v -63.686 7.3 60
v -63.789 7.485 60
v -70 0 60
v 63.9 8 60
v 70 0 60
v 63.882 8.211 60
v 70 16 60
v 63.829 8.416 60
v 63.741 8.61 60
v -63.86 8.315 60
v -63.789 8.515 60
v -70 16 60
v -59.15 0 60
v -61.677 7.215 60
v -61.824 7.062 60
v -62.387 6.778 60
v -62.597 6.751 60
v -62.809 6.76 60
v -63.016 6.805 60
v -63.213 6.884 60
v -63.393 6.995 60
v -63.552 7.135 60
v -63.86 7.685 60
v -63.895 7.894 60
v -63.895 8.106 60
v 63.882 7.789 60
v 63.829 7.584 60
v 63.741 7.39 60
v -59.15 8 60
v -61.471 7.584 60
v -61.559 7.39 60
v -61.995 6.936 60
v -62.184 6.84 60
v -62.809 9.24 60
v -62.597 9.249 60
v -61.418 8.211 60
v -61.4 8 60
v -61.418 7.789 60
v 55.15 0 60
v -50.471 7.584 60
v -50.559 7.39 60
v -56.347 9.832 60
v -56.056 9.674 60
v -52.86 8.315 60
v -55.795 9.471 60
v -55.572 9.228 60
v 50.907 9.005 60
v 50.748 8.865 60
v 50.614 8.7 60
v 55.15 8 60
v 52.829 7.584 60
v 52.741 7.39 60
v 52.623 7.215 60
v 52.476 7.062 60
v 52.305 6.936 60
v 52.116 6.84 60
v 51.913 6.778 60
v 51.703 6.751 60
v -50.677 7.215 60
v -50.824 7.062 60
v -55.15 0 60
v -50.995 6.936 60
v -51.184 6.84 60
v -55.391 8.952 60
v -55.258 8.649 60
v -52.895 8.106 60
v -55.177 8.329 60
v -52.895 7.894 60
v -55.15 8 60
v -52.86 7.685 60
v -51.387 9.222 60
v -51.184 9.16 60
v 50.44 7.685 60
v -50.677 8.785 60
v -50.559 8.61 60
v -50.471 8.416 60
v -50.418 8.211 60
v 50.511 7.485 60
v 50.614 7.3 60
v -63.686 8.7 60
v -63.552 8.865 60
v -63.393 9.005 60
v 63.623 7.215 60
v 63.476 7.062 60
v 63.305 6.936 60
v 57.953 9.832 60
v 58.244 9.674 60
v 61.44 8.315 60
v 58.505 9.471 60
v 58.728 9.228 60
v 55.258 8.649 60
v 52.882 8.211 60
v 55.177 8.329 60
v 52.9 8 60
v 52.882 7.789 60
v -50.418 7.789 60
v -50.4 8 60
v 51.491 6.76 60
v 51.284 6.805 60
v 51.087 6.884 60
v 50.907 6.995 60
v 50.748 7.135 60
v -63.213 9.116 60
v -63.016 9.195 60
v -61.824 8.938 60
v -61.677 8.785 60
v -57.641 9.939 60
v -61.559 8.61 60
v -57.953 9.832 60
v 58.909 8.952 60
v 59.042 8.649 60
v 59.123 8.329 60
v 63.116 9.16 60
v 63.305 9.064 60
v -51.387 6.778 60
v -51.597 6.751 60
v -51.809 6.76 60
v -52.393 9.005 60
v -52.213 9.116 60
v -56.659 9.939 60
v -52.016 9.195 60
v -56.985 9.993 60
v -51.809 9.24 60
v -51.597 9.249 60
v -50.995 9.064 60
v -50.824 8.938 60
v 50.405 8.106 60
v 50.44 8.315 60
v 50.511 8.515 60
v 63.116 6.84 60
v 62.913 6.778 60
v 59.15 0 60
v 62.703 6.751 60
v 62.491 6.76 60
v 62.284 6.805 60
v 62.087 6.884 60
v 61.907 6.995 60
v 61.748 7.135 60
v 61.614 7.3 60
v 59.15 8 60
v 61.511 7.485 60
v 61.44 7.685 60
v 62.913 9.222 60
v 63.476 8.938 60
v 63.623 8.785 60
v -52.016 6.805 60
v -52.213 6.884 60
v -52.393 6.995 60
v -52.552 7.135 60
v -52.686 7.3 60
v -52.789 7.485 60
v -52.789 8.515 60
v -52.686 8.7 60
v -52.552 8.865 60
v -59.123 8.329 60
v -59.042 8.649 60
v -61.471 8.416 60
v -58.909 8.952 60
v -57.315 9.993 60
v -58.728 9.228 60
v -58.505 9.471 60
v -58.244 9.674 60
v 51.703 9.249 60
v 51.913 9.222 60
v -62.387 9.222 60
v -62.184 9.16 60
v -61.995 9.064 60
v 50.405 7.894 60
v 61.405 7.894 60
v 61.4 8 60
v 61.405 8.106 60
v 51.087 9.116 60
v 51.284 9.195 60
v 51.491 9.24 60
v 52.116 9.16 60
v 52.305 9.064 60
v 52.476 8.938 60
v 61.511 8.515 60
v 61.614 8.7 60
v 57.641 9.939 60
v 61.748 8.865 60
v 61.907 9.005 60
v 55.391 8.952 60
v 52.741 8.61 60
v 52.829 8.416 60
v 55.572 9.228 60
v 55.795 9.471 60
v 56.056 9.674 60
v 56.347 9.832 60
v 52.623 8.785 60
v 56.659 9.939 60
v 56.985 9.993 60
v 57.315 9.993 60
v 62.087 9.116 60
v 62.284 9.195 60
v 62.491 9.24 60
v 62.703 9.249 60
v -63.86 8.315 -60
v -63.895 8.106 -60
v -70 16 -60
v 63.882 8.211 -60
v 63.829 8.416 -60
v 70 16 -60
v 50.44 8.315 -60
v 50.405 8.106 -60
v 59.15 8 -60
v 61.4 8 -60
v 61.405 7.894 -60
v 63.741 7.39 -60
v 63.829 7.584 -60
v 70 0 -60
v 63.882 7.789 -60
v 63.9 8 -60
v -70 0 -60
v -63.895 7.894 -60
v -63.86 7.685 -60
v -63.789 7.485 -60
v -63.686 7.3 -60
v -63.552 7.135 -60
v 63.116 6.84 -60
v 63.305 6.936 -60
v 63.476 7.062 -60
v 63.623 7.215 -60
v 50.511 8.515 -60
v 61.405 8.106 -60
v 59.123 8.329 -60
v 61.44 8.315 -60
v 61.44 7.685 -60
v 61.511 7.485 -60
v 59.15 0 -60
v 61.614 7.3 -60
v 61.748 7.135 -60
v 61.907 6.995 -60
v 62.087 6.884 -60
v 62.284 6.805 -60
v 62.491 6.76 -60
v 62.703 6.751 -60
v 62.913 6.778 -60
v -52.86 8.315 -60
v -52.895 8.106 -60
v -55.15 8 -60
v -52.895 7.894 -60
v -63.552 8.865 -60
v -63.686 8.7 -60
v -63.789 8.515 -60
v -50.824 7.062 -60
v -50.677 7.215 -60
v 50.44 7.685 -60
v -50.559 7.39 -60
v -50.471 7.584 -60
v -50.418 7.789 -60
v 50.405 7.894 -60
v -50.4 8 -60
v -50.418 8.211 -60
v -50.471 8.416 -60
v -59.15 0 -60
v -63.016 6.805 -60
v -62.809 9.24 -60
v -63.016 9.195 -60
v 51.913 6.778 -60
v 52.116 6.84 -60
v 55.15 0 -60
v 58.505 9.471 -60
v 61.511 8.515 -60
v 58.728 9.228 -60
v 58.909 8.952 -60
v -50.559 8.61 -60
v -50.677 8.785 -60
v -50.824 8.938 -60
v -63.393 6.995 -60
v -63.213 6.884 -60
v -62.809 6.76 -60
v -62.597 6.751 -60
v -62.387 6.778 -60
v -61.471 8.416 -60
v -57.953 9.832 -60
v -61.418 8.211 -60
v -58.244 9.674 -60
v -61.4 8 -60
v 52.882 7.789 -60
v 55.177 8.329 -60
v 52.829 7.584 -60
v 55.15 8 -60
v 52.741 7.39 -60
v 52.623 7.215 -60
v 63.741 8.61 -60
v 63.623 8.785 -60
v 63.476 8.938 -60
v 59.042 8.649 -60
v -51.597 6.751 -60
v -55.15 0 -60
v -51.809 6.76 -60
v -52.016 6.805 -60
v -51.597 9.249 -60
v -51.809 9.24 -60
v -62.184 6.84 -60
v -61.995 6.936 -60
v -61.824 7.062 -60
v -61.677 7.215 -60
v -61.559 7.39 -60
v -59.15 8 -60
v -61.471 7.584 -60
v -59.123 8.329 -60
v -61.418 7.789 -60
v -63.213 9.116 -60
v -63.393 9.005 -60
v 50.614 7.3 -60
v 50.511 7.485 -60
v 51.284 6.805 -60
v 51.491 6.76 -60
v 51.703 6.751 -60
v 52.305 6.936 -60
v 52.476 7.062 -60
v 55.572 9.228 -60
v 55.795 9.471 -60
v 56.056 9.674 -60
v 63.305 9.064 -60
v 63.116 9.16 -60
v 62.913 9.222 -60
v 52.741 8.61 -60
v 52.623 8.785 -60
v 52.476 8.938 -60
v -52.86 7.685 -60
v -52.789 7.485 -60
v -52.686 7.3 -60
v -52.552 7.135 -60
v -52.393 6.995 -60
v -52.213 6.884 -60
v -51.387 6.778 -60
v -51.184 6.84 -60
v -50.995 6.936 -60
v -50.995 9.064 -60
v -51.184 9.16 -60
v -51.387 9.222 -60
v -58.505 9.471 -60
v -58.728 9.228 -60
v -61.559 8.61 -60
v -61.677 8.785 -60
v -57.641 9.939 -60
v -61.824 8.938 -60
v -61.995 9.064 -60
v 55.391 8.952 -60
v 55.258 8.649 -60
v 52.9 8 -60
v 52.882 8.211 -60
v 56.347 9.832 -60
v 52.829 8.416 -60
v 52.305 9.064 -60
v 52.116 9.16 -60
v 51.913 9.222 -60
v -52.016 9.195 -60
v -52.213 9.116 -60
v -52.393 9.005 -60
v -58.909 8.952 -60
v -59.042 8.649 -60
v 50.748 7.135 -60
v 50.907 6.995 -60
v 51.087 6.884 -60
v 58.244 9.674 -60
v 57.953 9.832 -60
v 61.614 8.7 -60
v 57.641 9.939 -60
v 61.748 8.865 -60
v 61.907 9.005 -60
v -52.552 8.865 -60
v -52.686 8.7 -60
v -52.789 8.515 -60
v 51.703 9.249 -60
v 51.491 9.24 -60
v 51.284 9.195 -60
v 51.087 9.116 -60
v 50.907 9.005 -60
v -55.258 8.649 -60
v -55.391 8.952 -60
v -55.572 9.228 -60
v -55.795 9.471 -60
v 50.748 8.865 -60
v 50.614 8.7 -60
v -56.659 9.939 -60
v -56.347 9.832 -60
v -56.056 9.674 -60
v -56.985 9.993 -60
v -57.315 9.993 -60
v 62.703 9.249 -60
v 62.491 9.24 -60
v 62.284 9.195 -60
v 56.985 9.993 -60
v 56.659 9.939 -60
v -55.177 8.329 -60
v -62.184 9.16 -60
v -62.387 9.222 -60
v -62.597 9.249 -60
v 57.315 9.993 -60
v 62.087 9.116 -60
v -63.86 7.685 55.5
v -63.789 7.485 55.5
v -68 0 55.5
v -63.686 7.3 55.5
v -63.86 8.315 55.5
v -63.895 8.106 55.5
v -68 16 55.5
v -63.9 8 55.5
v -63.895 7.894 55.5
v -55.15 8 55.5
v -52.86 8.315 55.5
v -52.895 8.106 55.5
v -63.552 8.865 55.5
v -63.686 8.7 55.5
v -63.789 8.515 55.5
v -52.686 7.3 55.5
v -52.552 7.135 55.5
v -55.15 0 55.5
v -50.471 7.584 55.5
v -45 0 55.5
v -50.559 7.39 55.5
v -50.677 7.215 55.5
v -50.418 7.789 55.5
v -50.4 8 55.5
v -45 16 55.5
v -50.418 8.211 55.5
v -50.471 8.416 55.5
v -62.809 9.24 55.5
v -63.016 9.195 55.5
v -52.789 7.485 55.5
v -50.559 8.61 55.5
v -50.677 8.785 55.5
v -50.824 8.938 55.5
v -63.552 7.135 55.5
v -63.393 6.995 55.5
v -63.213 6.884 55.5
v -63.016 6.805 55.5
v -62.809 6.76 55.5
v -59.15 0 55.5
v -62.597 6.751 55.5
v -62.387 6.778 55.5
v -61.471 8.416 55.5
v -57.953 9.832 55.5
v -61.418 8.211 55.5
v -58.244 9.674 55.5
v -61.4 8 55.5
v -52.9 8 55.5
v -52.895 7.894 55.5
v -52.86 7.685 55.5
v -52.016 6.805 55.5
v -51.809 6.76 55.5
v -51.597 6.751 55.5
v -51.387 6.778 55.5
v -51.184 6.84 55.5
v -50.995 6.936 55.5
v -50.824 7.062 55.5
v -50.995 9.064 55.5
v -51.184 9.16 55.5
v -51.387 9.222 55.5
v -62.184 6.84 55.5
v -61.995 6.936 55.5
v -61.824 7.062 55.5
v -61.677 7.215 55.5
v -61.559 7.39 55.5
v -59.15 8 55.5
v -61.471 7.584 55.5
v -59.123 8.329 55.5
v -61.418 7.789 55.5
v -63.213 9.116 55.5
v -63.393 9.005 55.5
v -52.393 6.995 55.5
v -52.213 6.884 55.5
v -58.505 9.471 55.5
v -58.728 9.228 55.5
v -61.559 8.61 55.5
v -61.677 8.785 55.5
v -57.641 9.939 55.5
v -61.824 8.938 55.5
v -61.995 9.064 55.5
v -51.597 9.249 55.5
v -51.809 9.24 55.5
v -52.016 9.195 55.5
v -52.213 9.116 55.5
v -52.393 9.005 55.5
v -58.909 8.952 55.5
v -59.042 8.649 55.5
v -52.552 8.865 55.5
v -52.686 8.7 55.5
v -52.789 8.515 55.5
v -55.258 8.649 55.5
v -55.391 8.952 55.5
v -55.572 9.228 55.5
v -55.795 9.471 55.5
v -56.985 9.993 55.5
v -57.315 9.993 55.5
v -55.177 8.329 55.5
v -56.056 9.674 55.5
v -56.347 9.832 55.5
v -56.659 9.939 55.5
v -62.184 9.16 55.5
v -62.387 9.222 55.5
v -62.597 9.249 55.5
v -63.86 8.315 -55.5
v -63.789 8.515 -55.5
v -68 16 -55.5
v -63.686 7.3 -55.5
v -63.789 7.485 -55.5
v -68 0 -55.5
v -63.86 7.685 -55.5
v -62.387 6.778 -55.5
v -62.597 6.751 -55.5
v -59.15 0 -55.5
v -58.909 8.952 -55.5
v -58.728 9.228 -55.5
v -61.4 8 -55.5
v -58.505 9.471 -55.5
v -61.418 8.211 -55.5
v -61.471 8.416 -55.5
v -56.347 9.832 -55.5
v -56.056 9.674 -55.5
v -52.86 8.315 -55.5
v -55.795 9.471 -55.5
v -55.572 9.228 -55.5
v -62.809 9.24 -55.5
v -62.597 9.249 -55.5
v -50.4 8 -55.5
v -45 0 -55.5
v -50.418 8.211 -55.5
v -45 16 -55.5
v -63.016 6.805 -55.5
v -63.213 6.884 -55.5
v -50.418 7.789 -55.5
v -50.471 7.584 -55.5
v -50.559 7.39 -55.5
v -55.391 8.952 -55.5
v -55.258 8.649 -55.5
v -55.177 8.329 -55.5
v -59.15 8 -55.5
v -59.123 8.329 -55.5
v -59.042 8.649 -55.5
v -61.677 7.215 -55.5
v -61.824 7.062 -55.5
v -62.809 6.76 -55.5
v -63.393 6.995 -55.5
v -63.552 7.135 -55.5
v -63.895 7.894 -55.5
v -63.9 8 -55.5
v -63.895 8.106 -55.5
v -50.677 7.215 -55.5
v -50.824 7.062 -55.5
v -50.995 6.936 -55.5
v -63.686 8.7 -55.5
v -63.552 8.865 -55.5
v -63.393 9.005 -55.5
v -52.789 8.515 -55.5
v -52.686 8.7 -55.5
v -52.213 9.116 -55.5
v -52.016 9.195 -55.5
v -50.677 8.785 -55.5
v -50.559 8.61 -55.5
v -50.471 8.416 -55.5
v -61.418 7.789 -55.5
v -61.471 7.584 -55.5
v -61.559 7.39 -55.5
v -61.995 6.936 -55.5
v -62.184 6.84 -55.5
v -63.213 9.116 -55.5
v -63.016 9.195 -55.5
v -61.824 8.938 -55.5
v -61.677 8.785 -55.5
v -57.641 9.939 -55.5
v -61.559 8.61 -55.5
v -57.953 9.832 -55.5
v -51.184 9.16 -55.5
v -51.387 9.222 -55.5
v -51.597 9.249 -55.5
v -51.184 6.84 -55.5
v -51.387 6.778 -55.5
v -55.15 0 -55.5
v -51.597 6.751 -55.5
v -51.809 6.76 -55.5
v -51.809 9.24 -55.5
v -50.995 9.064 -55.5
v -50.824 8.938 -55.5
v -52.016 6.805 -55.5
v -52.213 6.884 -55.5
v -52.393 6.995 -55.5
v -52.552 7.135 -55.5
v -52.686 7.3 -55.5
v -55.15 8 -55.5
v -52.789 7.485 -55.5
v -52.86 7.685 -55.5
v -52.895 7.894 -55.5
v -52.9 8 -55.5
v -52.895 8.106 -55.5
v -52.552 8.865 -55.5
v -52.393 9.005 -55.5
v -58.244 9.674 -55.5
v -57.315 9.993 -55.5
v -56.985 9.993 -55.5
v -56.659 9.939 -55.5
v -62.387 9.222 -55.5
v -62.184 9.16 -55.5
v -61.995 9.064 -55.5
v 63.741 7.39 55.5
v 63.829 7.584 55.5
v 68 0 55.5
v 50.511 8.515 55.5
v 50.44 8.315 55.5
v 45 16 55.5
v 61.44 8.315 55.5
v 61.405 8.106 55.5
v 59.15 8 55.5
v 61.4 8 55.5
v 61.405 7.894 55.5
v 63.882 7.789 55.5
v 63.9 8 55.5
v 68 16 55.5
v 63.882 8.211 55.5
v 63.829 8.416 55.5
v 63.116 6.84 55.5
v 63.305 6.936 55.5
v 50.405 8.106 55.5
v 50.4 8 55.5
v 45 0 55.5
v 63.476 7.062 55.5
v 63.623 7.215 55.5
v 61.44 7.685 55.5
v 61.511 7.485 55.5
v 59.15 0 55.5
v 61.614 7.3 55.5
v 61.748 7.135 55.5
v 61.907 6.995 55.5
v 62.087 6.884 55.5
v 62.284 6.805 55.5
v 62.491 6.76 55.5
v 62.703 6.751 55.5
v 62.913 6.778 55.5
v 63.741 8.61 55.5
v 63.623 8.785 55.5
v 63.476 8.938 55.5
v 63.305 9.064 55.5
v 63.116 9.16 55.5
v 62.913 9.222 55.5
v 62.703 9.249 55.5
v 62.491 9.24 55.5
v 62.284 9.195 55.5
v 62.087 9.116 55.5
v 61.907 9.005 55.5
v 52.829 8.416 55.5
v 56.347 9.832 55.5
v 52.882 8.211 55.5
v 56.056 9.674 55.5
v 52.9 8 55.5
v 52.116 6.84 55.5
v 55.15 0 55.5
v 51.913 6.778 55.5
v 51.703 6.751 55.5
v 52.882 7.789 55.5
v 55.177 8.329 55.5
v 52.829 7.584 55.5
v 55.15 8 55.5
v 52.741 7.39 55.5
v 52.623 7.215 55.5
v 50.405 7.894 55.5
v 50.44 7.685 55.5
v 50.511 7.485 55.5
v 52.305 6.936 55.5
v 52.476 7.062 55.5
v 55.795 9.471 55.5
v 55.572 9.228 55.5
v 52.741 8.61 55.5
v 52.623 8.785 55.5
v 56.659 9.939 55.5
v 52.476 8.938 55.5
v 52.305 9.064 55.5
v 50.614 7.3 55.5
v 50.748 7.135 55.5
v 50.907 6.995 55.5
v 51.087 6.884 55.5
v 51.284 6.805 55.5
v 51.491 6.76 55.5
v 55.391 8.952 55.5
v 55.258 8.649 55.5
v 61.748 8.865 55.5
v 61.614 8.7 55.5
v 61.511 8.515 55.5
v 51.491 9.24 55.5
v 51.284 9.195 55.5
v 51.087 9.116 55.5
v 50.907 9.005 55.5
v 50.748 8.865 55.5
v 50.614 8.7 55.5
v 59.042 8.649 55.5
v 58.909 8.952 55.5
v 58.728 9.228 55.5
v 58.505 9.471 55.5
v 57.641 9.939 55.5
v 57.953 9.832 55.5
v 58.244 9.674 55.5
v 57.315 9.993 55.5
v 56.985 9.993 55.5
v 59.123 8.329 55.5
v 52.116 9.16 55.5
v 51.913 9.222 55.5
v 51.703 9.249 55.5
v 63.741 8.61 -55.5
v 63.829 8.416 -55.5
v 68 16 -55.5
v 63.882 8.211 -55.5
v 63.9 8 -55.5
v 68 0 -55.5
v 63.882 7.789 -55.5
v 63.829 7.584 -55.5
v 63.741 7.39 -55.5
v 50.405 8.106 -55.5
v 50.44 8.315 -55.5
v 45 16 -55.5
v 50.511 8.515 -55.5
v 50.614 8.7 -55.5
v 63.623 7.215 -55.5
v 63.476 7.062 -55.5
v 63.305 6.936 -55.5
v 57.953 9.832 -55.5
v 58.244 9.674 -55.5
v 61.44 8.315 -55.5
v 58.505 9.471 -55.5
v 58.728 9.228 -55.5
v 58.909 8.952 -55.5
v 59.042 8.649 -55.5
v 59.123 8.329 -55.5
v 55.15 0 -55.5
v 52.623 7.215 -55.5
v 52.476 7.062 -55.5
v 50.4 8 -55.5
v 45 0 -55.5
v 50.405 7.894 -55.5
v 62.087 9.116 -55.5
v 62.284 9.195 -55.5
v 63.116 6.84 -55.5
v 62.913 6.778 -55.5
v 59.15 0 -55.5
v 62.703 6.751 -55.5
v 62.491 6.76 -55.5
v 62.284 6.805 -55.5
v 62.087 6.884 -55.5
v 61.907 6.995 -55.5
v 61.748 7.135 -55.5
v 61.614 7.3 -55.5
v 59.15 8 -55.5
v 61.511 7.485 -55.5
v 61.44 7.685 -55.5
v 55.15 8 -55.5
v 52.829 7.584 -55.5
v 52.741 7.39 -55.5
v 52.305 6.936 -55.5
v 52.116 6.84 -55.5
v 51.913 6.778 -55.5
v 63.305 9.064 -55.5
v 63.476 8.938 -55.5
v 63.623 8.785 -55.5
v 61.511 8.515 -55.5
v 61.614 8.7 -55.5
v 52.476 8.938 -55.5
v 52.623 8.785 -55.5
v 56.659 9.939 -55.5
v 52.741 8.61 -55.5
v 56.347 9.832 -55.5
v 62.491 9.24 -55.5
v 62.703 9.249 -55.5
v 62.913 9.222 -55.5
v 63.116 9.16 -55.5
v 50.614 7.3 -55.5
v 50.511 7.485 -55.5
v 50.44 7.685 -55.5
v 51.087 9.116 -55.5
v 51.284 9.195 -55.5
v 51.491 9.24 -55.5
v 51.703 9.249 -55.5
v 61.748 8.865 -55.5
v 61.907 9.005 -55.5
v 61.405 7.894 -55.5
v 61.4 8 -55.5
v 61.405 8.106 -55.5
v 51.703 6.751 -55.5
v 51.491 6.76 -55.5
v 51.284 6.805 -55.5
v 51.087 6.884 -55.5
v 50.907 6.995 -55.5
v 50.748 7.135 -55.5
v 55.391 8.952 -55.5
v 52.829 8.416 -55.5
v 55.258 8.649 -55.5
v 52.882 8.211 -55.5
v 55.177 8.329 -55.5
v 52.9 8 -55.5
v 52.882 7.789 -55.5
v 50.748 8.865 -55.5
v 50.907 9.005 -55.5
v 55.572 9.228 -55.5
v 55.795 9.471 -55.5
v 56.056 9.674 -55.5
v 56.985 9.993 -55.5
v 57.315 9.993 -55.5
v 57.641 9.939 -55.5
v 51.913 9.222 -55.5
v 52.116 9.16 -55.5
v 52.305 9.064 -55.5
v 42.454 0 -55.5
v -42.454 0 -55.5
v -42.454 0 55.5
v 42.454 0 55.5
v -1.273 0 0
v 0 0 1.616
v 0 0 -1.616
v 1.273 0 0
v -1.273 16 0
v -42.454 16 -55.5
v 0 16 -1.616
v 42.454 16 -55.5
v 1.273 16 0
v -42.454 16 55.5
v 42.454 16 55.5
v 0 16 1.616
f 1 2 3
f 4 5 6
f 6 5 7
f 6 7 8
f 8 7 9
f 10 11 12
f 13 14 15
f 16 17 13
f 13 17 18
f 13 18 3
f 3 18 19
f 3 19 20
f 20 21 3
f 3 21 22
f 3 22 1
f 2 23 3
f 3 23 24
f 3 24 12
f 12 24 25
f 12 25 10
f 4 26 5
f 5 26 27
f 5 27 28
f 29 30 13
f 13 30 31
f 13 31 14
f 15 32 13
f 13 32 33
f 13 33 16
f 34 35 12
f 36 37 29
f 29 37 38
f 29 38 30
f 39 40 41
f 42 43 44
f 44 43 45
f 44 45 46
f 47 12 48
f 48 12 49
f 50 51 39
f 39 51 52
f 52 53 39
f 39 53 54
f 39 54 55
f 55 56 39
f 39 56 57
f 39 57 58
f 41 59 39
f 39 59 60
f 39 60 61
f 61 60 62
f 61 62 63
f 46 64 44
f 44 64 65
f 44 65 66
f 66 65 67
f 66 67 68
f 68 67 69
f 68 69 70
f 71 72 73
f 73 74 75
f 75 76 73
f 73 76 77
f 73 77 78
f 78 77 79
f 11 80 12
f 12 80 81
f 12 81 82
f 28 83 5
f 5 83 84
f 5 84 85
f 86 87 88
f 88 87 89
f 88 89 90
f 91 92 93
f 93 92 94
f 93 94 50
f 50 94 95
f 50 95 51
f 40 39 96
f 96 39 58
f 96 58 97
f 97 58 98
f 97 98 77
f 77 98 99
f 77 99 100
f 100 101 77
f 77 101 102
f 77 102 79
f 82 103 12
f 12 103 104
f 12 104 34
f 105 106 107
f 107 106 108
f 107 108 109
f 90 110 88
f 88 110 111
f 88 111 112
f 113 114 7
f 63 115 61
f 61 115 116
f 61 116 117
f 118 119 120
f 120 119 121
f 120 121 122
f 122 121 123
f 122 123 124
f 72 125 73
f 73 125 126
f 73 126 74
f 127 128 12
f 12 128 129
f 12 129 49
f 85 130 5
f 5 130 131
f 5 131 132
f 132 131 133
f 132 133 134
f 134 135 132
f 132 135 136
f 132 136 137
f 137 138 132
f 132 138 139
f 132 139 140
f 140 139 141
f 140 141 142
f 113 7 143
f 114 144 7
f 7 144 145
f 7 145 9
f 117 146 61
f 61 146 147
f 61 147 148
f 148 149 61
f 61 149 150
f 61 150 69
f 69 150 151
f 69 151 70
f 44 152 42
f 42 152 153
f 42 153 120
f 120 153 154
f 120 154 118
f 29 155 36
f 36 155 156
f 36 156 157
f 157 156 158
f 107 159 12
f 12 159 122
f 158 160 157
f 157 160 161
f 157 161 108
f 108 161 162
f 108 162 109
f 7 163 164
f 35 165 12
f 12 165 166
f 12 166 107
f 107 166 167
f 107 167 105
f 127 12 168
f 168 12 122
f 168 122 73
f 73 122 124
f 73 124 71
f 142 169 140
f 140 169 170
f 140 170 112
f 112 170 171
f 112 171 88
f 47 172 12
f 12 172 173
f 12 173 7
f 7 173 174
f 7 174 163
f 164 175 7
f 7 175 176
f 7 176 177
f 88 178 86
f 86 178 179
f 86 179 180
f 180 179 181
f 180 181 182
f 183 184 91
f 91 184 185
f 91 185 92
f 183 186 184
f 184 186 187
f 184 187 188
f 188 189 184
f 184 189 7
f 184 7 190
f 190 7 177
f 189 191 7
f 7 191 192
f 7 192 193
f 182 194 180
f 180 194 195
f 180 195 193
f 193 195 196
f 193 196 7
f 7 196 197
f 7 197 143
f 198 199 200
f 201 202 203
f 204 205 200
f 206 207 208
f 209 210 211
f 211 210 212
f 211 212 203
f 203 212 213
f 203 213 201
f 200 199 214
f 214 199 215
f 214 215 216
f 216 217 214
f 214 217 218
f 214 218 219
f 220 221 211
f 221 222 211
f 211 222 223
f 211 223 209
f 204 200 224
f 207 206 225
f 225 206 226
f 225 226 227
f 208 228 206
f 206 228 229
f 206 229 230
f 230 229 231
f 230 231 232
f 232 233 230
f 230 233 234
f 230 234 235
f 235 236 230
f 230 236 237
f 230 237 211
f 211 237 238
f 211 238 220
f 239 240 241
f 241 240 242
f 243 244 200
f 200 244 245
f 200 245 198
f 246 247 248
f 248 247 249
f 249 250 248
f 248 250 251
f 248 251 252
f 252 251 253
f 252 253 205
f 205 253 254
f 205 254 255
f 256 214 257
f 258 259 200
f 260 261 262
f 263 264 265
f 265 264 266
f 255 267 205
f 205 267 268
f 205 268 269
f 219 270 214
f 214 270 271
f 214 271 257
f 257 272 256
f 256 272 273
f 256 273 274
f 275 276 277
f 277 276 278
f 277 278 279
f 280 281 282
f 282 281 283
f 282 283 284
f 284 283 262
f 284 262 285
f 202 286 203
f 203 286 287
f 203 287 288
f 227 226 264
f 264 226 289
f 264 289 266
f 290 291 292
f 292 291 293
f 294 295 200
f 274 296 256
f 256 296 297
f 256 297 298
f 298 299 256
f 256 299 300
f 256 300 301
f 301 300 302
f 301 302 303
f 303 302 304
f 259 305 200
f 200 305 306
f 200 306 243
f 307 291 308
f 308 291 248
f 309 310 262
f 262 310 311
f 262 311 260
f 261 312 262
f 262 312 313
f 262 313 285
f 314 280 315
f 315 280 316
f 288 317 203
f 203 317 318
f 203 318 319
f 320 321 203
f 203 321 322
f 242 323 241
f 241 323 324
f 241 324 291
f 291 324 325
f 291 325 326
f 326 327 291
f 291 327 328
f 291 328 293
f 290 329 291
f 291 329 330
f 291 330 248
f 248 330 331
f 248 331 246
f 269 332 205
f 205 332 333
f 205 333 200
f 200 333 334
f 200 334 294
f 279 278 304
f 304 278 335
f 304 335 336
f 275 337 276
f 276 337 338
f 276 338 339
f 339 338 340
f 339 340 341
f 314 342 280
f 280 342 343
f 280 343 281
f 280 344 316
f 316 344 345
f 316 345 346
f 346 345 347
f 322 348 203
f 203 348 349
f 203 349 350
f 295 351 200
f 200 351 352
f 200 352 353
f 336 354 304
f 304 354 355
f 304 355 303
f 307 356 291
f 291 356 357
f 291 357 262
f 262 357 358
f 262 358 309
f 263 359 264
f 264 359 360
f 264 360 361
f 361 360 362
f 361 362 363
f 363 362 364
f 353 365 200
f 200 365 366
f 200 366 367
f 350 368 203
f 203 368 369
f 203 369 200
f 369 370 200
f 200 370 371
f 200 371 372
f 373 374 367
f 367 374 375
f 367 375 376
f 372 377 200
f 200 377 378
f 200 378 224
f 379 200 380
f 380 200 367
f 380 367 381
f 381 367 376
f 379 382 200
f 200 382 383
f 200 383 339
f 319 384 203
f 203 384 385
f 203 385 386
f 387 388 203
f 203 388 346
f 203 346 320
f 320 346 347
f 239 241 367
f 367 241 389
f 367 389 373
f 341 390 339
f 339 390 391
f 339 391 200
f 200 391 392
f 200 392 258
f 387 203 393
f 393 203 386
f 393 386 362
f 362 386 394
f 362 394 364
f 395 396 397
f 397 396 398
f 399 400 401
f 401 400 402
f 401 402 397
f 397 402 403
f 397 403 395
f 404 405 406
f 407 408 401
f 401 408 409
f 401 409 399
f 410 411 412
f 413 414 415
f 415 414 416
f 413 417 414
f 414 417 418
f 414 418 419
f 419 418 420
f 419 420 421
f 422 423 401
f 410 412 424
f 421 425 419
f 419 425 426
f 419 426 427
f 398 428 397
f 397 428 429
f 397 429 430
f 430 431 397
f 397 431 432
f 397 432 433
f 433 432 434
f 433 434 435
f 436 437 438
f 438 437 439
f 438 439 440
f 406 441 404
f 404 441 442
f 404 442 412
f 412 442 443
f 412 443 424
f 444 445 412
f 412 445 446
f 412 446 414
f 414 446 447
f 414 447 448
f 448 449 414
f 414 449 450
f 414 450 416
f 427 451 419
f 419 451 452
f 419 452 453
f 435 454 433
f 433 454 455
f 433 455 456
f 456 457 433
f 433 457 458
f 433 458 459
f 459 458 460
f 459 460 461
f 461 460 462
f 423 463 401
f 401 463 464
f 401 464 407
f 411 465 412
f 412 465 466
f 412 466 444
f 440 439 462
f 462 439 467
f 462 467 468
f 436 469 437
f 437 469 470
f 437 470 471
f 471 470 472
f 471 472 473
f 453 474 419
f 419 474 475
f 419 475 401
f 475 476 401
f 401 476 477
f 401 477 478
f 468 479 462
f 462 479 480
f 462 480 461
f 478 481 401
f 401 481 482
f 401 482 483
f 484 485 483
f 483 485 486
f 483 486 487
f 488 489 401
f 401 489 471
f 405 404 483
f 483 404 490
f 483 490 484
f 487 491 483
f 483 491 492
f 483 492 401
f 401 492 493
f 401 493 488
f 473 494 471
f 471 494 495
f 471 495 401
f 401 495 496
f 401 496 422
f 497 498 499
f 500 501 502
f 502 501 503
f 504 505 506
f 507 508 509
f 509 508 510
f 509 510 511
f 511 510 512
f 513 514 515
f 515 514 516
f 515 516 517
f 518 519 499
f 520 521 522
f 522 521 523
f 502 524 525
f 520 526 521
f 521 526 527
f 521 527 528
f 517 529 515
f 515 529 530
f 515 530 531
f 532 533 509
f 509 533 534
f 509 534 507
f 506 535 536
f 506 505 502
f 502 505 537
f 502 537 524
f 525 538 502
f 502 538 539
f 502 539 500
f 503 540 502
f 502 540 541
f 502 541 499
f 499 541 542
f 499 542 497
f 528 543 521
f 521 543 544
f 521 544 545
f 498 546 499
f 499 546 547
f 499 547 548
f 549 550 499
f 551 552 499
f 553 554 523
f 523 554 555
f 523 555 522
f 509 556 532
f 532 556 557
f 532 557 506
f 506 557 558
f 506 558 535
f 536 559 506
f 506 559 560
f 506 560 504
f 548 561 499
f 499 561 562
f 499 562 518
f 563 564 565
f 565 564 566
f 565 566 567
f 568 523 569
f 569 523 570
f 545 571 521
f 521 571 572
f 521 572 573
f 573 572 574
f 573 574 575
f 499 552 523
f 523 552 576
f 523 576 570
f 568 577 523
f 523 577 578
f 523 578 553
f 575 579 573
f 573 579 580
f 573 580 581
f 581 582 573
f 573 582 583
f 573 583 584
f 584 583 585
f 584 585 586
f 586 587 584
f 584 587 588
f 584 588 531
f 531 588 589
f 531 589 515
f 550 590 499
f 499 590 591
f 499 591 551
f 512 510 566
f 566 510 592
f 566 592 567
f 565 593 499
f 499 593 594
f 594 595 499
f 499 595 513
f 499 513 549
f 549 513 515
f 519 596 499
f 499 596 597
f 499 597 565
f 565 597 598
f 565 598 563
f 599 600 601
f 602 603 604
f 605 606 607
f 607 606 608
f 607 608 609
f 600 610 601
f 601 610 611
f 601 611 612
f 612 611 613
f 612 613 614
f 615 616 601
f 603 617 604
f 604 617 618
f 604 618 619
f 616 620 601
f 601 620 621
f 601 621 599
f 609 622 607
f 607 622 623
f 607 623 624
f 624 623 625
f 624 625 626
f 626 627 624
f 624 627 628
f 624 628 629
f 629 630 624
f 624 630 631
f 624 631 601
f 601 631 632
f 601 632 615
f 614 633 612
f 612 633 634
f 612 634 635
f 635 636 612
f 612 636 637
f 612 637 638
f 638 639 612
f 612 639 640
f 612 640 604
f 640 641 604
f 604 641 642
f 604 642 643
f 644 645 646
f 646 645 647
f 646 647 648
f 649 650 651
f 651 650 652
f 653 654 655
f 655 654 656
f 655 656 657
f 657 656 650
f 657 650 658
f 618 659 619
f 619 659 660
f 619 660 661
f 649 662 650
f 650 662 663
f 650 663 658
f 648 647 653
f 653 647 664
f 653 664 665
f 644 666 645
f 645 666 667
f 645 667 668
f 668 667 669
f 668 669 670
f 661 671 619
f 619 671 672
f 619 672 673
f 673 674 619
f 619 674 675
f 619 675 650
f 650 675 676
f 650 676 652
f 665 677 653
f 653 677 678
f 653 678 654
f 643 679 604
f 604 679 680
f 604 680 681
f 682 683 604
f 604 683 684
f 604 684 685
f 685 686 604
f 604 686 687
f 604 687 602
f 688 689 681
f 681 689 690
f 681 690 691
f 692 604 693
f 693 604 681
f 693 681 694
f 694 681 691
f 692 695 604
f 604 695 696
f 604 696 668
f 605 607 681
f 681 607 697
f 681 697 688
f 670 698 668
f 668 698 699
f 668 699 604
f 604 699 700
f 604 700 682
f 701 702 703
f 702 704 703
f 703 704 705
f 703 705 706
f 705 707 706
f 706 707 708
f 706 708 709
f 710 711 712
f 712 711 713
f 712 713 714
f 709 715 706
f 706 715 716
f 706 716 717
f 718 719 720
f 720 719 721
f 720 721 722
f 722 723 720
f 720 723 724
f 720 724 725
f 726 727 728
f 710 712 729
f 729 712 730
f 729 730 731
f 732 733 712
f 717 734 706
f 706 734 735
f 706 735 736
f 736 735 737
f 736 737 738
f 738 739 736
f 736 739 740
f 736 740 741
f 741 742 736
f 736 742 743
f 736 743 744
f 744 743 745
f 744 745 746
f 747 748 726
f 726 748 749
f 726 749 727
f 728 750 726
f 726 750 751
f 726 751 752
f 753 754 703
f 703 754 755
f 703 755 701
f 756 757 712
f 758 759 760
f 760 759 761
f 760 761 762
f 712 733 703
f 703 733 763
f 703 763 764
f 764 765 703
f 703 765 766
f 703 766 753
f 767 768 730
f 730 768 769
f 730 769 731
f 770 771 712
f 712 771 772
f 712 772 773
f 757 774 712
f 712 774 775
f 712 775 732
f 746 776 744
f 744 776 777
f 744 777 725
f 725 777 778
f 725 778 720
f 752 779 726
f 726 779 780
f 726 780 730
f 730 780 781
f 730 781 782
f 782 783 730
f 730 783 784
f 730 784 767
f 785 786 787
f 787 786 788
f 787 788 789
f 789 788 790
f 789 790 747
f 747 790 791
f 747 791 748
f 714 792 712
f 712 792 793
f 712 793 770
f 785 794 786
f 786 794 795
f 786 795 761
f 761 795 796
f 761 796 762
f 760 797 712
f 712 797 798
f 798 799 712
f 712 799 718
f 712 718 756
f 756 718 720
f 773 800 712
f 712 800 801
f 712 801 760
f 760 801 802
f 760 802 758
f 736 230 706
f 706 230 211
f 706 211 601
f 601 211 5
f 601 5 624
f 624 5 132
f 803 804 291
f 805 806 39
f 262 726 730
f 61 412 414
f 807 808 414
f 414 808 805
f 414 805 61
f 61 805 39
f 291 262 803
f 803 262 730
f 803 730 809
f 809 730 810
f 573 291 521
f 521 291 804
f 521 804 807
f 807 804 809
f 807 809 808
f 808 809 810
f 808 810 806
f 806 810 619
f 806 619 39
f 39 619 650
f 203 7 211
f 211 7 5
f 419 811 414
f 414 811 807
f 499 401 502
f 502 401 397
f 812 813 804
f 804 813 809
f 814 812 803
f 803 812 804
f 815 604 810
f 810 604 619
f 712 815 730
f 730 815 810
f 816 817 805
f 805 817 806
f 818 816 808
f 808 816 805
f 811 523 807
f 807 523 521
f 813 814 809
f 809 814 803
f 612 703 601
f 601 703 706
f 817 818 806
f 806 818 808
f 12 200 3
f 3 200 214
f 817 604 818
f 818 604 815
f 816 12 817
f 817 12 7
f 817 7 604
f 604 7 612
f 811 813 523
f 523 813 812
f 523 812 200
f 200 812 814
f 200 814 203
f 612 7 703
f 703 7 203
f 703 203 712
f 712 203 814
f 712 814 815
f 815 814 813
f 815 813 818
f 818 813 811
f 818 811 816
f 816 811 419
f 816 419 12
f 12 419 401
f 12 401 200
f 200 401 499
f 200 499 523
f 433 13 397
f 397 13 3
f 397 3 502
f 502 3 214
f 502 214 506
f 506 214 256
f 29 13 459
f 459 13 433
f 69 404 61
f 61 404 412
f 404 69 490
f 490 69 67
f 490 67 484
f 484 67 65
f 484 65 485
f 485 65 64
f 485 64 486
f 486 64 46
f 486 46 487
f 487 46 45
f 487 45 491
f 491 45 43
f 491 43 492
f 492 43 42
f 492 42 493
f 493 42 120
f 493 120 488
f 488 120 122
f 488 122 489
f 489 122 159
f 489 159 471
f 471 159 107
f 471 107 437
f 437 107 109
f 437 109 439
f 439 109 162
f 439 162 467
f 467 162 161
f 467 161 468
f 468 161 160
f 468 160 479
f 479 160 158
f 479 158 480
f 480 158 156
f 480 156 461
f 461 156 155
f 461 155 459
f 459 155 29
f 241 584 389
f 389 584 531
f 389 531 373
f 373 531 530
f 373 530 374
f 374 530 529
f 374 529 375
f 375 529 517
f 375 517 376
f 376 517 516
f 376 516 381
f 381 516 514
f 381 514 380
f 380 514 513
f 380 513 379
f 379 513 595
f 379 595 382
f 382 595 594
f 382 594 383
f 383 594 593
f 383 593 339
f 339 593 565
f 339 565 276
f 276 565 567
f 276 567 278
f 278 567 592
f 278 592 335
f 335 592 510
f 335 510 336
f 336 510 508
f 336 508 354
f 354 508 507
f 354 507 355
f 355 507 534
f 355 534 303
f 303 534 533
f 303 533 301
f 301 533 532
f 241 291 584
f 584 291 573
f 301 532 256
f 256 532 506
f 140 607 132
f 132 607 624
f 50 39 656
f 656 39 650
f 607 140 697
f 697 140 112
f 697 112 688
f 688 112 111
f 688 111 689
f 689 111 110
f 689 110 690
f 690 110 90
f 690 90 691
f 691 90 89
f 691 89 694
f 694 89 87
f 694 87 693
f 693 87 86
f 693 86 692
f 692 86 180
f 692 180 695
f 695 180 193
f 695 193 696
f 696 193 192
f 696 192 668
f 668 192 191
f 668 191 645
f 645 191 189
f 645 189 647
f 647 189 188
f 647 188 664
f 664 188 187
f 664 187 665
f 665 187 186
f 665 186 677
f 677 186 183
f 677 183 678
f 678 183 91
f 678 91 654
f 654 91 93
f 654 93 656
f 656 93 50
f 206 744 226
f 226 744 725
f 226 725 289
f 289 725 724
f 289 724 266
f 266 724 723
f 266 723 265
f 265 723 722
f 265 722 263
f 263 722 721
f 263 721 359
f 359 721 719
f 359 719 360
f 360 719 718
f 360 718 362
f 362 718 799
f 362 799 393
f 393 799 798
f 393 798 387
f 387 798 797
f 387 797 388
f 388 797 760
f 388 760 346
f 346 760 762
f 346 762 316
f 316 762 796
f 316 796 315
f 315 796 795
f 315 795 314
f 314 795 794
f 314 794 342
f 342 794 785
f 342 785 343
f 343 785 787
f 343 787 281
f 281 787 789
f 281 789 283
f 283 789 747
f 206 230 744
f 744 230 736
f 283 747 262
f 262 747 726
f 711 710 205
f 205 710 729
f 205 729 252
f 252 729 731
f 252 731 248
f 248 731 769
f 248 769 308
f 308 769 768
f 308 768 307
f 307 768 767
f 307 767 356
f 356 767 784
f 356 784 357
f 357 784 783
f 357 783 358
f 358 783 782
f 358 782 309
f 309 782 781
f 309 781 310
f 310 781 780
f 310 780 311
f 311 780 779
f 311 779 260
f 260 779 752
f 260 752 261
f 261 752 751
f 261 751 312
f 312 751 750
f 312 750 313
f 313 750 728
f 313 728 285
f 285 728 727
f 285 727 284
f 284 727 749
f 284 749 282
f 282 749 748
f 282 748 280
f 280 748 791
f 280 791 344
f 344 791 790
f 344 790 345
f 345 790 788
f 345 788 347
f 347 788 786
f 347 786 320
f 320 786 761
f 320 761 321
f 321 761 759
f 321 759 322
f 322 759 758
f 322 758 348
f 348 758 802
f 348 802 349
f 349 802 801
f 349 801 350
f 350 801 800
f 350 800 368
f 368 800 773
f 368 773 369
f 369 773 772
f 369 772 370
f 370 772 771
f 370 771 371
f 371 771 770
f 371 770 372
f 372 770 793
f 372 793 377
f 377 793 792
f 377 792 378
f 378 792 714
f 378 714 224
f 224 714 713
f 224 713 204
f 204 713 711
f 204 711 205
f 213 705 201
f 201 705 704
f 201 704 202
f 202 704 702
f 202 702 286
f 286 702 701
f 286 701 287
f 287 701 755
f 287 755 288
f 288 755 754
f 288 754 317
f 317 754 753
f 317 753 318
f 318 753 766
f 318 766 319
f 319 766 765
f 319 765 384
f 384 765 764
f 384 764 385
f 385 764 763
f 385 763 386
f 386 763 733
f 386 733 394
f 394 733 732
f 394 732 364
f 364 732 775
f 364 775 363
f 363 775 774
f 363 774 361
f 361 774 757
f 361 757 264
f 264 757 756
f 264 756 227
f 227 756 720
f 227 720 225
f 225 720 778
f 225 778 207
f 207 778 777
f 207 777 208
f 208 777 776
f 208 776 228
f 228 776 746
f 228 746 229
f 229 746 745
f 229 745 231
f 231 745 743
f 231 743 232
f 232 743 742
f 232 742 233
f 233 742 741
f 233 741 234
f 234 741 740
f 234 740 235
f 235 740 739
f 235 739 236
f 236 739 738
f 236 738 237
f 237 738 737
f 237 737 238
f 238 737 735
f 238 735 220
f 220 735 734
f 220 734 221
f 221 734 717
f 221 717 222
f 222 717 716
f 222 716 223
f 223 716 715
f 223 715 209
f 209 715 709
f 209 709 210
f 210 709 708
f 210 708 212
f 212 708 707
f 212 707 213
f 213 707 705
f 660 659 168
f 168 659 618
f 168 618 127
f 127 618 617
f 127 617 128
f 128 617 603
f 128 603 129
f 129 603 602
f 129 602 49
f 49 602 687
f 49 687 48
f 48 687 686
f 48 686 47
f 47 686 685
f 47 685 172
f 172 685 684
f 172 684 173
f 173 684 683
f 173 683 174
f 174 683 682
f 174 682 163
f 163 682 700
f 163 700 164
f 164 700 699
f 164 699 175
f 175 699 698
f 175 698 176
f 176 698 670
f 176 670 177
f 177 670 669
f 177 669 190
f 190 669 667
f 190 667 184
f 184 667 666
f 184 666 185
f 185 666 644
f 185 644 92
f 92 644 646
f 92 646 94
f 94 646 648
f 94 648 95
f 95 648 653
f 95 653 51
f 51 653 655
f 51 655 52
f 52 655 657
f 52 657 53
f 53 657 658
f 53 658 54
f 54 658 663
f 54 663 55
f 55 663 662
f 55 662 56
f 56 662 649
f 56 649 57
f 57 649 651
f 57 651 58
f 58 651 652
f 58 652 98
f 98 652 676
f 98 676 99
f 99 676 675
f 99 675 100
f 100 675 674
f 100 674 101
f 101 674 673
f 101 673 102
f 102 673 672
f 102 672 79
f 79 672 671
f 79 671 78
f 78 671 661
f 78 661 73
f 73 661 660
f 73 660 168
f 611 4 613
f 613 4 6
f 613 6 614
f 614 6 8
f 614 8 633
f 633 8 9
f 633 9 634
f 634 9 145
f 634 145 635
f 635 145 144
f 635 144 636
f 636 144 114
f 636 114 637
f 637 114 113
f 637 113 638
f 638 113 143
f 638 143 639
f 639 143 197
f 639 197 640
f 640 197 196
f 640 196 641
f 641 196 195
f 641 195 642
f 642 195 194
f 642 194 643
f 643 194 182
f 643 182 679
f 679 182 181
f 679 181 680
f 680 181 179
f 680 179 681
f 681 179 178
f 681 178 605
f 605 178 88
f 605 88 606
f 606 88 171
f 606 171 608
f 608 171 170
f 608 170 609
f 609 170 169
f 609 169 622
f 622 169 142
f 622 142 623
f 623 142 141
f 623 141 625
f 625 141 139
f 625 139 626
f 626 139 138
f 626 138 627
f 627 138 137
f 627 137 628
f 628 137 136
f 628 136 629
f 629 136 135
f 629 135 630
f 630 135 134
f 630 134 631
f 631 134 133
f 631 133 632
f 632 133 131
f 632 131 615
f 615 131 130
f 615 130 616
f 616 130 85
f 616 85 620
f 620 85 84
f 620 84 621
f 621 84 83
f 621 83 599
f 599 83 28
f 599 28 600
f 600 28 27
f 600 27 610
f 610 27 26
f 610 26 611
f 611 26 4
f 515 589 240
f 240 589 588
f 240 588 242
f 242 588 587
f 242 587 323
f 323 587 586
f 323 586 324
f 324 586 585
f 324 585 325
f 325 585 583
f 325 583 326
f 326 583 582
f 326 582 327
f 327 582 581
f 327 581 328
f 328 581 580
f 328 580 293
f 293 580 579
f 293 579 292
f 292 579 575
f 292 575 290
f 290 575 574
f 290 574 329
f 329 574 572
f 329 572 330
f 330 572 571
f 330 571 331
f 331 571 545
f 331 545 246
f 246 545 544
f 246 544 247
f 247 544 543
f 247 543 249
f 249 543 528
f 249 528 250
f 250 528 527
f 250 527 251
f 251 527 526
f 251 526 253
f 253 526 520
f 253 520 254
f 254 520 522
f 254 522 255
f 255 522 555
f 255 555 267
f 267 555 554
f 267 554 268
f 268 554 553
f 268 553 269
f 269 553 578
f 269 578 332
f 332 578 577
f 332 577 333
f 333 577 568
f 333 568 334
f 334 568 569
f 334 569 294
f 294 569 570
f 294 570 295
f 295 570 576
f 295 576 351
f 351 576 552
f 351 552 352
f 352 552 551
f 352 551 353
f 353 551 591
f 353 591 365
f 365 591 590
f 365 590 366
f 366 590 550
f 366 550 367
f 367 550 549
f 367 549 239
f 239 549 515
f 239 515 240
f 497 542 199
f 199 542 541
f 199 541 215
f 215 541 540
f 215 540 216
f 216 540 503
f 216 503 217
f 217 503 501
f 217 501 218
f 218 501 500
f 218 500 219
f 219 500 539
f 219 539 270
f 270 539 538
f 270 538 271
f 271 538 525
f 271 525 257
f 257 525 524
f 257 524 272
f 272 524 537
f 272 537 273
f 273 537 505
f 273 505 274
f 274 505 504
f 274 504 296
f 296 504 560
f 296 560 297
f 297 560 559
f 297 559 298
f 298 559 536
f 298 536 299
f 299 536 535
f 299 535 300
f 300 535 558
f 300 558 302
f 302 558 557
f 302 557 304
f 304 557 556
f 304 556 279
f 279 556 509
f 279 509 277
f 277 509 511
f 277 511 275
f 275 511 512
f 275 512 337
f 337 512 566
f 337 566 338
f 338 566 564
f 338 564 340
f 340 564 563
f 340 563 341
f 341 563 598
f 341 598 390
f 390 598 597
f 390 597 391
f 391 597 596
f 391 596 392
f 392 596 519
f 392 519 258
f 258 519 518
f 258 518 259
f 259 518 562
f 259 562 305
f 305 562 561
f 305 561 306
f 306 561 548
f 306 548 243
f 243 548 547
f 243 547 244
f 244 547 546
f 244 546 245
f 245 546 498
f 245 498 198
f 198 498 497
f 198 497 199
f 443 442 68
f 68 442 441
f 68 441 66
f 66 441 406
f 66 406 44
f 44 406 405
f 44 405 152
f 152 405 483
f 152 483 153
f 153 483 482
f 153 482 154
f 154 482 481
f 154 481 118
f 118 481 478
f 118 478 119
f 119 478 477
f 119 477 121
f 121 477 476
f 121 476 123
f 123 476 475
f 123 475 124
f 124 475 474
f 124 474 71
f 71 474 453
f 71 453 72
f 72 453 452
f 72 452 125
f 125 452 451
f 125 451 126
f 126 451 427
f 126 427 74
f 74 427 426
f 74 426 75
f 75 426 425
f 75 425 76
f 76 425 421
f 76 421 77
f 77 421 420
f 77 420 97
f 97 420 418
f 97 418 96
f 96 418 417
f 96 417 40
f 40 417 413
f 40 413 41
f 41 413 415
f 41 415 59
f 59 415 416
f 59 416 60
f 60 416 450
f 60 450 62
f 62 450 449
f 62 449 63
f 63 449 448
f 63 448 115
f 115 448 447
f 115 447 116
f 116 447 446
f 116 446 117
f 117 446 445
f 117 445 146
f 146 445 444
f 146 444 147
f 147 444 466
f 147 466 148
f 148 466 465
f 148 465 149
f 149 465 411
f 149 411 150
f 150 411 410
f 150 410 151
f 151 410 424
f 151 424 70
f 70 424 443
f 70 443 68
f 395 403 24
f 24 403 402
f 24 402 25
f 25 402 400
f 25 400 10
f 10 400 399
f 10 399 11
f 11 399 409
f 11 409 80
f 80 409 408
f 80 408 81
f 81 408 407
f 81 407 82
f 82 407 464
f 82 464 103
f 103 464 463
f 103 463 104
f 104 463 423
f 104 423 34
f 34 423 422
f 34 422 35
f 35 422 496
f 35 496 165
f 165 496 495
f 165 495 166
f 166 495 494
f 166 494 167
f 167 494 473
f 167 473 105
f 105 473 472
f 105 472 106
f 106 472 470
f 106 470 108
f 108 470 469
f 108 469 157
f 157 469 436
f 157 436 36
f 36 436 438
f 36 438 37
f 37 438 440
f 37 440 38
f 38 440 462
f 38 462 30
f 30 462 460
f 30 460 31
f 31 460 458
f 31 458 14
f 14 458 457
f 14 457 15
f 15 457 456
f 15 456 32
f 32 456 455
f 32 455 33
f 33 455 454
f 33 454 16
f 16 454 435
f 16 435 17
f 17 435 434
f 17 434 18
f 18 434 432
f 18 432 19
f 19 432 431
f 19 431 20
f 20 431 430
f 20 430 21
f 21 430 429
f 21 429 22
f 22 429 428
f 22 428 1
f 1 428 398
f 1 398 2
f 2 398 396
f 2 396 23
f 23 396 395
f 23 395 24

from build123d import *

# Parameters (mm, degrees)
SKETCH1_W           = 140
SKETCH1_H           = 120
SKETCH1_W_2         = 136
SKETCH1_H_2         = 111
BOSS_EXTRUDE1_DEPTH = 16
SKETCH2_R           = 1.25
CUT_EXTRUDE1_DEPTH  = 140.842768851


with BuildPart() as part:
    # Sketch1 → Boss-Extrude1 (new body)
    # profile 1 of 2: a face of its own
    with BuildSketch(Plane(origin=(0, 0, 0), x_dir=(1, 0, 0), z_dir=(0, 1, 0))):
        Rectangle(SKETCH1_W, SKETCH1_H)
        Rectangle(SKETCH1_W_2, SKETCH1_H_2, mode=Mode.SUBTRACT)
    # profile 2 of 2: a face of its own
    with BuildSketch(Plane(origin=(0, 0, 0), x_dir=(1, 0, 0), z_dir=(0, 1, 0))):
        Polygon((-1.273083994, 0), (-45, -55.5), (-42.453832012, -55.5), (0, -1.615850559), (42.453832012, -55.5), (45, -55.5), (1.273083994, 0), (45, 55.5), (42.453832012, 55.5), (0, 1.615850559), (-42.453832012, 55.5), (-45, 55.5), align=None)
    extrude(amount=BOSS_EXTRUDE1_DEPTH)

    # Sketch2 → Cut-Extrude1 (cut, through all)
    with BuildSketch(Plane.XY.offset(60)):
        with BuildLine():
            ThreePointArc((-55.15, 8), (-57.15, 10), (-59.15, 8))
            Line((-59.15, 8), (-59.15, 0))
            Line((-59.15, 0), (-55.15, 0))
            Line((-55.15, 0), (-55.15, 8))
        make_face()
        with Locations((-51.65, 8)):
            Circle(SKETCH2_R)
        with Locations((-62.65, 8)):
            Circle(SKETCH2_R)
        with BuildLine():
            Line((55.15, 8), (55.15, 0))
            Line((55.15, 0), (59.15, 0))
            Line((59.15, 0), (59.15, 8))
            ThreePointArc((59.15, 8), (57.15, 10), (55.15, 8))
        make_face()
        with Locations((51.65, 8)):
            Circle(SKETCH2_R)
        with Locations((62.65, 8)):
            Circle(SKETCH2_R)
    extrude(amount=-CUT_EXTRUDE1_DEPTH, mode=Mode.SUBTRACT)


solid = part.part
